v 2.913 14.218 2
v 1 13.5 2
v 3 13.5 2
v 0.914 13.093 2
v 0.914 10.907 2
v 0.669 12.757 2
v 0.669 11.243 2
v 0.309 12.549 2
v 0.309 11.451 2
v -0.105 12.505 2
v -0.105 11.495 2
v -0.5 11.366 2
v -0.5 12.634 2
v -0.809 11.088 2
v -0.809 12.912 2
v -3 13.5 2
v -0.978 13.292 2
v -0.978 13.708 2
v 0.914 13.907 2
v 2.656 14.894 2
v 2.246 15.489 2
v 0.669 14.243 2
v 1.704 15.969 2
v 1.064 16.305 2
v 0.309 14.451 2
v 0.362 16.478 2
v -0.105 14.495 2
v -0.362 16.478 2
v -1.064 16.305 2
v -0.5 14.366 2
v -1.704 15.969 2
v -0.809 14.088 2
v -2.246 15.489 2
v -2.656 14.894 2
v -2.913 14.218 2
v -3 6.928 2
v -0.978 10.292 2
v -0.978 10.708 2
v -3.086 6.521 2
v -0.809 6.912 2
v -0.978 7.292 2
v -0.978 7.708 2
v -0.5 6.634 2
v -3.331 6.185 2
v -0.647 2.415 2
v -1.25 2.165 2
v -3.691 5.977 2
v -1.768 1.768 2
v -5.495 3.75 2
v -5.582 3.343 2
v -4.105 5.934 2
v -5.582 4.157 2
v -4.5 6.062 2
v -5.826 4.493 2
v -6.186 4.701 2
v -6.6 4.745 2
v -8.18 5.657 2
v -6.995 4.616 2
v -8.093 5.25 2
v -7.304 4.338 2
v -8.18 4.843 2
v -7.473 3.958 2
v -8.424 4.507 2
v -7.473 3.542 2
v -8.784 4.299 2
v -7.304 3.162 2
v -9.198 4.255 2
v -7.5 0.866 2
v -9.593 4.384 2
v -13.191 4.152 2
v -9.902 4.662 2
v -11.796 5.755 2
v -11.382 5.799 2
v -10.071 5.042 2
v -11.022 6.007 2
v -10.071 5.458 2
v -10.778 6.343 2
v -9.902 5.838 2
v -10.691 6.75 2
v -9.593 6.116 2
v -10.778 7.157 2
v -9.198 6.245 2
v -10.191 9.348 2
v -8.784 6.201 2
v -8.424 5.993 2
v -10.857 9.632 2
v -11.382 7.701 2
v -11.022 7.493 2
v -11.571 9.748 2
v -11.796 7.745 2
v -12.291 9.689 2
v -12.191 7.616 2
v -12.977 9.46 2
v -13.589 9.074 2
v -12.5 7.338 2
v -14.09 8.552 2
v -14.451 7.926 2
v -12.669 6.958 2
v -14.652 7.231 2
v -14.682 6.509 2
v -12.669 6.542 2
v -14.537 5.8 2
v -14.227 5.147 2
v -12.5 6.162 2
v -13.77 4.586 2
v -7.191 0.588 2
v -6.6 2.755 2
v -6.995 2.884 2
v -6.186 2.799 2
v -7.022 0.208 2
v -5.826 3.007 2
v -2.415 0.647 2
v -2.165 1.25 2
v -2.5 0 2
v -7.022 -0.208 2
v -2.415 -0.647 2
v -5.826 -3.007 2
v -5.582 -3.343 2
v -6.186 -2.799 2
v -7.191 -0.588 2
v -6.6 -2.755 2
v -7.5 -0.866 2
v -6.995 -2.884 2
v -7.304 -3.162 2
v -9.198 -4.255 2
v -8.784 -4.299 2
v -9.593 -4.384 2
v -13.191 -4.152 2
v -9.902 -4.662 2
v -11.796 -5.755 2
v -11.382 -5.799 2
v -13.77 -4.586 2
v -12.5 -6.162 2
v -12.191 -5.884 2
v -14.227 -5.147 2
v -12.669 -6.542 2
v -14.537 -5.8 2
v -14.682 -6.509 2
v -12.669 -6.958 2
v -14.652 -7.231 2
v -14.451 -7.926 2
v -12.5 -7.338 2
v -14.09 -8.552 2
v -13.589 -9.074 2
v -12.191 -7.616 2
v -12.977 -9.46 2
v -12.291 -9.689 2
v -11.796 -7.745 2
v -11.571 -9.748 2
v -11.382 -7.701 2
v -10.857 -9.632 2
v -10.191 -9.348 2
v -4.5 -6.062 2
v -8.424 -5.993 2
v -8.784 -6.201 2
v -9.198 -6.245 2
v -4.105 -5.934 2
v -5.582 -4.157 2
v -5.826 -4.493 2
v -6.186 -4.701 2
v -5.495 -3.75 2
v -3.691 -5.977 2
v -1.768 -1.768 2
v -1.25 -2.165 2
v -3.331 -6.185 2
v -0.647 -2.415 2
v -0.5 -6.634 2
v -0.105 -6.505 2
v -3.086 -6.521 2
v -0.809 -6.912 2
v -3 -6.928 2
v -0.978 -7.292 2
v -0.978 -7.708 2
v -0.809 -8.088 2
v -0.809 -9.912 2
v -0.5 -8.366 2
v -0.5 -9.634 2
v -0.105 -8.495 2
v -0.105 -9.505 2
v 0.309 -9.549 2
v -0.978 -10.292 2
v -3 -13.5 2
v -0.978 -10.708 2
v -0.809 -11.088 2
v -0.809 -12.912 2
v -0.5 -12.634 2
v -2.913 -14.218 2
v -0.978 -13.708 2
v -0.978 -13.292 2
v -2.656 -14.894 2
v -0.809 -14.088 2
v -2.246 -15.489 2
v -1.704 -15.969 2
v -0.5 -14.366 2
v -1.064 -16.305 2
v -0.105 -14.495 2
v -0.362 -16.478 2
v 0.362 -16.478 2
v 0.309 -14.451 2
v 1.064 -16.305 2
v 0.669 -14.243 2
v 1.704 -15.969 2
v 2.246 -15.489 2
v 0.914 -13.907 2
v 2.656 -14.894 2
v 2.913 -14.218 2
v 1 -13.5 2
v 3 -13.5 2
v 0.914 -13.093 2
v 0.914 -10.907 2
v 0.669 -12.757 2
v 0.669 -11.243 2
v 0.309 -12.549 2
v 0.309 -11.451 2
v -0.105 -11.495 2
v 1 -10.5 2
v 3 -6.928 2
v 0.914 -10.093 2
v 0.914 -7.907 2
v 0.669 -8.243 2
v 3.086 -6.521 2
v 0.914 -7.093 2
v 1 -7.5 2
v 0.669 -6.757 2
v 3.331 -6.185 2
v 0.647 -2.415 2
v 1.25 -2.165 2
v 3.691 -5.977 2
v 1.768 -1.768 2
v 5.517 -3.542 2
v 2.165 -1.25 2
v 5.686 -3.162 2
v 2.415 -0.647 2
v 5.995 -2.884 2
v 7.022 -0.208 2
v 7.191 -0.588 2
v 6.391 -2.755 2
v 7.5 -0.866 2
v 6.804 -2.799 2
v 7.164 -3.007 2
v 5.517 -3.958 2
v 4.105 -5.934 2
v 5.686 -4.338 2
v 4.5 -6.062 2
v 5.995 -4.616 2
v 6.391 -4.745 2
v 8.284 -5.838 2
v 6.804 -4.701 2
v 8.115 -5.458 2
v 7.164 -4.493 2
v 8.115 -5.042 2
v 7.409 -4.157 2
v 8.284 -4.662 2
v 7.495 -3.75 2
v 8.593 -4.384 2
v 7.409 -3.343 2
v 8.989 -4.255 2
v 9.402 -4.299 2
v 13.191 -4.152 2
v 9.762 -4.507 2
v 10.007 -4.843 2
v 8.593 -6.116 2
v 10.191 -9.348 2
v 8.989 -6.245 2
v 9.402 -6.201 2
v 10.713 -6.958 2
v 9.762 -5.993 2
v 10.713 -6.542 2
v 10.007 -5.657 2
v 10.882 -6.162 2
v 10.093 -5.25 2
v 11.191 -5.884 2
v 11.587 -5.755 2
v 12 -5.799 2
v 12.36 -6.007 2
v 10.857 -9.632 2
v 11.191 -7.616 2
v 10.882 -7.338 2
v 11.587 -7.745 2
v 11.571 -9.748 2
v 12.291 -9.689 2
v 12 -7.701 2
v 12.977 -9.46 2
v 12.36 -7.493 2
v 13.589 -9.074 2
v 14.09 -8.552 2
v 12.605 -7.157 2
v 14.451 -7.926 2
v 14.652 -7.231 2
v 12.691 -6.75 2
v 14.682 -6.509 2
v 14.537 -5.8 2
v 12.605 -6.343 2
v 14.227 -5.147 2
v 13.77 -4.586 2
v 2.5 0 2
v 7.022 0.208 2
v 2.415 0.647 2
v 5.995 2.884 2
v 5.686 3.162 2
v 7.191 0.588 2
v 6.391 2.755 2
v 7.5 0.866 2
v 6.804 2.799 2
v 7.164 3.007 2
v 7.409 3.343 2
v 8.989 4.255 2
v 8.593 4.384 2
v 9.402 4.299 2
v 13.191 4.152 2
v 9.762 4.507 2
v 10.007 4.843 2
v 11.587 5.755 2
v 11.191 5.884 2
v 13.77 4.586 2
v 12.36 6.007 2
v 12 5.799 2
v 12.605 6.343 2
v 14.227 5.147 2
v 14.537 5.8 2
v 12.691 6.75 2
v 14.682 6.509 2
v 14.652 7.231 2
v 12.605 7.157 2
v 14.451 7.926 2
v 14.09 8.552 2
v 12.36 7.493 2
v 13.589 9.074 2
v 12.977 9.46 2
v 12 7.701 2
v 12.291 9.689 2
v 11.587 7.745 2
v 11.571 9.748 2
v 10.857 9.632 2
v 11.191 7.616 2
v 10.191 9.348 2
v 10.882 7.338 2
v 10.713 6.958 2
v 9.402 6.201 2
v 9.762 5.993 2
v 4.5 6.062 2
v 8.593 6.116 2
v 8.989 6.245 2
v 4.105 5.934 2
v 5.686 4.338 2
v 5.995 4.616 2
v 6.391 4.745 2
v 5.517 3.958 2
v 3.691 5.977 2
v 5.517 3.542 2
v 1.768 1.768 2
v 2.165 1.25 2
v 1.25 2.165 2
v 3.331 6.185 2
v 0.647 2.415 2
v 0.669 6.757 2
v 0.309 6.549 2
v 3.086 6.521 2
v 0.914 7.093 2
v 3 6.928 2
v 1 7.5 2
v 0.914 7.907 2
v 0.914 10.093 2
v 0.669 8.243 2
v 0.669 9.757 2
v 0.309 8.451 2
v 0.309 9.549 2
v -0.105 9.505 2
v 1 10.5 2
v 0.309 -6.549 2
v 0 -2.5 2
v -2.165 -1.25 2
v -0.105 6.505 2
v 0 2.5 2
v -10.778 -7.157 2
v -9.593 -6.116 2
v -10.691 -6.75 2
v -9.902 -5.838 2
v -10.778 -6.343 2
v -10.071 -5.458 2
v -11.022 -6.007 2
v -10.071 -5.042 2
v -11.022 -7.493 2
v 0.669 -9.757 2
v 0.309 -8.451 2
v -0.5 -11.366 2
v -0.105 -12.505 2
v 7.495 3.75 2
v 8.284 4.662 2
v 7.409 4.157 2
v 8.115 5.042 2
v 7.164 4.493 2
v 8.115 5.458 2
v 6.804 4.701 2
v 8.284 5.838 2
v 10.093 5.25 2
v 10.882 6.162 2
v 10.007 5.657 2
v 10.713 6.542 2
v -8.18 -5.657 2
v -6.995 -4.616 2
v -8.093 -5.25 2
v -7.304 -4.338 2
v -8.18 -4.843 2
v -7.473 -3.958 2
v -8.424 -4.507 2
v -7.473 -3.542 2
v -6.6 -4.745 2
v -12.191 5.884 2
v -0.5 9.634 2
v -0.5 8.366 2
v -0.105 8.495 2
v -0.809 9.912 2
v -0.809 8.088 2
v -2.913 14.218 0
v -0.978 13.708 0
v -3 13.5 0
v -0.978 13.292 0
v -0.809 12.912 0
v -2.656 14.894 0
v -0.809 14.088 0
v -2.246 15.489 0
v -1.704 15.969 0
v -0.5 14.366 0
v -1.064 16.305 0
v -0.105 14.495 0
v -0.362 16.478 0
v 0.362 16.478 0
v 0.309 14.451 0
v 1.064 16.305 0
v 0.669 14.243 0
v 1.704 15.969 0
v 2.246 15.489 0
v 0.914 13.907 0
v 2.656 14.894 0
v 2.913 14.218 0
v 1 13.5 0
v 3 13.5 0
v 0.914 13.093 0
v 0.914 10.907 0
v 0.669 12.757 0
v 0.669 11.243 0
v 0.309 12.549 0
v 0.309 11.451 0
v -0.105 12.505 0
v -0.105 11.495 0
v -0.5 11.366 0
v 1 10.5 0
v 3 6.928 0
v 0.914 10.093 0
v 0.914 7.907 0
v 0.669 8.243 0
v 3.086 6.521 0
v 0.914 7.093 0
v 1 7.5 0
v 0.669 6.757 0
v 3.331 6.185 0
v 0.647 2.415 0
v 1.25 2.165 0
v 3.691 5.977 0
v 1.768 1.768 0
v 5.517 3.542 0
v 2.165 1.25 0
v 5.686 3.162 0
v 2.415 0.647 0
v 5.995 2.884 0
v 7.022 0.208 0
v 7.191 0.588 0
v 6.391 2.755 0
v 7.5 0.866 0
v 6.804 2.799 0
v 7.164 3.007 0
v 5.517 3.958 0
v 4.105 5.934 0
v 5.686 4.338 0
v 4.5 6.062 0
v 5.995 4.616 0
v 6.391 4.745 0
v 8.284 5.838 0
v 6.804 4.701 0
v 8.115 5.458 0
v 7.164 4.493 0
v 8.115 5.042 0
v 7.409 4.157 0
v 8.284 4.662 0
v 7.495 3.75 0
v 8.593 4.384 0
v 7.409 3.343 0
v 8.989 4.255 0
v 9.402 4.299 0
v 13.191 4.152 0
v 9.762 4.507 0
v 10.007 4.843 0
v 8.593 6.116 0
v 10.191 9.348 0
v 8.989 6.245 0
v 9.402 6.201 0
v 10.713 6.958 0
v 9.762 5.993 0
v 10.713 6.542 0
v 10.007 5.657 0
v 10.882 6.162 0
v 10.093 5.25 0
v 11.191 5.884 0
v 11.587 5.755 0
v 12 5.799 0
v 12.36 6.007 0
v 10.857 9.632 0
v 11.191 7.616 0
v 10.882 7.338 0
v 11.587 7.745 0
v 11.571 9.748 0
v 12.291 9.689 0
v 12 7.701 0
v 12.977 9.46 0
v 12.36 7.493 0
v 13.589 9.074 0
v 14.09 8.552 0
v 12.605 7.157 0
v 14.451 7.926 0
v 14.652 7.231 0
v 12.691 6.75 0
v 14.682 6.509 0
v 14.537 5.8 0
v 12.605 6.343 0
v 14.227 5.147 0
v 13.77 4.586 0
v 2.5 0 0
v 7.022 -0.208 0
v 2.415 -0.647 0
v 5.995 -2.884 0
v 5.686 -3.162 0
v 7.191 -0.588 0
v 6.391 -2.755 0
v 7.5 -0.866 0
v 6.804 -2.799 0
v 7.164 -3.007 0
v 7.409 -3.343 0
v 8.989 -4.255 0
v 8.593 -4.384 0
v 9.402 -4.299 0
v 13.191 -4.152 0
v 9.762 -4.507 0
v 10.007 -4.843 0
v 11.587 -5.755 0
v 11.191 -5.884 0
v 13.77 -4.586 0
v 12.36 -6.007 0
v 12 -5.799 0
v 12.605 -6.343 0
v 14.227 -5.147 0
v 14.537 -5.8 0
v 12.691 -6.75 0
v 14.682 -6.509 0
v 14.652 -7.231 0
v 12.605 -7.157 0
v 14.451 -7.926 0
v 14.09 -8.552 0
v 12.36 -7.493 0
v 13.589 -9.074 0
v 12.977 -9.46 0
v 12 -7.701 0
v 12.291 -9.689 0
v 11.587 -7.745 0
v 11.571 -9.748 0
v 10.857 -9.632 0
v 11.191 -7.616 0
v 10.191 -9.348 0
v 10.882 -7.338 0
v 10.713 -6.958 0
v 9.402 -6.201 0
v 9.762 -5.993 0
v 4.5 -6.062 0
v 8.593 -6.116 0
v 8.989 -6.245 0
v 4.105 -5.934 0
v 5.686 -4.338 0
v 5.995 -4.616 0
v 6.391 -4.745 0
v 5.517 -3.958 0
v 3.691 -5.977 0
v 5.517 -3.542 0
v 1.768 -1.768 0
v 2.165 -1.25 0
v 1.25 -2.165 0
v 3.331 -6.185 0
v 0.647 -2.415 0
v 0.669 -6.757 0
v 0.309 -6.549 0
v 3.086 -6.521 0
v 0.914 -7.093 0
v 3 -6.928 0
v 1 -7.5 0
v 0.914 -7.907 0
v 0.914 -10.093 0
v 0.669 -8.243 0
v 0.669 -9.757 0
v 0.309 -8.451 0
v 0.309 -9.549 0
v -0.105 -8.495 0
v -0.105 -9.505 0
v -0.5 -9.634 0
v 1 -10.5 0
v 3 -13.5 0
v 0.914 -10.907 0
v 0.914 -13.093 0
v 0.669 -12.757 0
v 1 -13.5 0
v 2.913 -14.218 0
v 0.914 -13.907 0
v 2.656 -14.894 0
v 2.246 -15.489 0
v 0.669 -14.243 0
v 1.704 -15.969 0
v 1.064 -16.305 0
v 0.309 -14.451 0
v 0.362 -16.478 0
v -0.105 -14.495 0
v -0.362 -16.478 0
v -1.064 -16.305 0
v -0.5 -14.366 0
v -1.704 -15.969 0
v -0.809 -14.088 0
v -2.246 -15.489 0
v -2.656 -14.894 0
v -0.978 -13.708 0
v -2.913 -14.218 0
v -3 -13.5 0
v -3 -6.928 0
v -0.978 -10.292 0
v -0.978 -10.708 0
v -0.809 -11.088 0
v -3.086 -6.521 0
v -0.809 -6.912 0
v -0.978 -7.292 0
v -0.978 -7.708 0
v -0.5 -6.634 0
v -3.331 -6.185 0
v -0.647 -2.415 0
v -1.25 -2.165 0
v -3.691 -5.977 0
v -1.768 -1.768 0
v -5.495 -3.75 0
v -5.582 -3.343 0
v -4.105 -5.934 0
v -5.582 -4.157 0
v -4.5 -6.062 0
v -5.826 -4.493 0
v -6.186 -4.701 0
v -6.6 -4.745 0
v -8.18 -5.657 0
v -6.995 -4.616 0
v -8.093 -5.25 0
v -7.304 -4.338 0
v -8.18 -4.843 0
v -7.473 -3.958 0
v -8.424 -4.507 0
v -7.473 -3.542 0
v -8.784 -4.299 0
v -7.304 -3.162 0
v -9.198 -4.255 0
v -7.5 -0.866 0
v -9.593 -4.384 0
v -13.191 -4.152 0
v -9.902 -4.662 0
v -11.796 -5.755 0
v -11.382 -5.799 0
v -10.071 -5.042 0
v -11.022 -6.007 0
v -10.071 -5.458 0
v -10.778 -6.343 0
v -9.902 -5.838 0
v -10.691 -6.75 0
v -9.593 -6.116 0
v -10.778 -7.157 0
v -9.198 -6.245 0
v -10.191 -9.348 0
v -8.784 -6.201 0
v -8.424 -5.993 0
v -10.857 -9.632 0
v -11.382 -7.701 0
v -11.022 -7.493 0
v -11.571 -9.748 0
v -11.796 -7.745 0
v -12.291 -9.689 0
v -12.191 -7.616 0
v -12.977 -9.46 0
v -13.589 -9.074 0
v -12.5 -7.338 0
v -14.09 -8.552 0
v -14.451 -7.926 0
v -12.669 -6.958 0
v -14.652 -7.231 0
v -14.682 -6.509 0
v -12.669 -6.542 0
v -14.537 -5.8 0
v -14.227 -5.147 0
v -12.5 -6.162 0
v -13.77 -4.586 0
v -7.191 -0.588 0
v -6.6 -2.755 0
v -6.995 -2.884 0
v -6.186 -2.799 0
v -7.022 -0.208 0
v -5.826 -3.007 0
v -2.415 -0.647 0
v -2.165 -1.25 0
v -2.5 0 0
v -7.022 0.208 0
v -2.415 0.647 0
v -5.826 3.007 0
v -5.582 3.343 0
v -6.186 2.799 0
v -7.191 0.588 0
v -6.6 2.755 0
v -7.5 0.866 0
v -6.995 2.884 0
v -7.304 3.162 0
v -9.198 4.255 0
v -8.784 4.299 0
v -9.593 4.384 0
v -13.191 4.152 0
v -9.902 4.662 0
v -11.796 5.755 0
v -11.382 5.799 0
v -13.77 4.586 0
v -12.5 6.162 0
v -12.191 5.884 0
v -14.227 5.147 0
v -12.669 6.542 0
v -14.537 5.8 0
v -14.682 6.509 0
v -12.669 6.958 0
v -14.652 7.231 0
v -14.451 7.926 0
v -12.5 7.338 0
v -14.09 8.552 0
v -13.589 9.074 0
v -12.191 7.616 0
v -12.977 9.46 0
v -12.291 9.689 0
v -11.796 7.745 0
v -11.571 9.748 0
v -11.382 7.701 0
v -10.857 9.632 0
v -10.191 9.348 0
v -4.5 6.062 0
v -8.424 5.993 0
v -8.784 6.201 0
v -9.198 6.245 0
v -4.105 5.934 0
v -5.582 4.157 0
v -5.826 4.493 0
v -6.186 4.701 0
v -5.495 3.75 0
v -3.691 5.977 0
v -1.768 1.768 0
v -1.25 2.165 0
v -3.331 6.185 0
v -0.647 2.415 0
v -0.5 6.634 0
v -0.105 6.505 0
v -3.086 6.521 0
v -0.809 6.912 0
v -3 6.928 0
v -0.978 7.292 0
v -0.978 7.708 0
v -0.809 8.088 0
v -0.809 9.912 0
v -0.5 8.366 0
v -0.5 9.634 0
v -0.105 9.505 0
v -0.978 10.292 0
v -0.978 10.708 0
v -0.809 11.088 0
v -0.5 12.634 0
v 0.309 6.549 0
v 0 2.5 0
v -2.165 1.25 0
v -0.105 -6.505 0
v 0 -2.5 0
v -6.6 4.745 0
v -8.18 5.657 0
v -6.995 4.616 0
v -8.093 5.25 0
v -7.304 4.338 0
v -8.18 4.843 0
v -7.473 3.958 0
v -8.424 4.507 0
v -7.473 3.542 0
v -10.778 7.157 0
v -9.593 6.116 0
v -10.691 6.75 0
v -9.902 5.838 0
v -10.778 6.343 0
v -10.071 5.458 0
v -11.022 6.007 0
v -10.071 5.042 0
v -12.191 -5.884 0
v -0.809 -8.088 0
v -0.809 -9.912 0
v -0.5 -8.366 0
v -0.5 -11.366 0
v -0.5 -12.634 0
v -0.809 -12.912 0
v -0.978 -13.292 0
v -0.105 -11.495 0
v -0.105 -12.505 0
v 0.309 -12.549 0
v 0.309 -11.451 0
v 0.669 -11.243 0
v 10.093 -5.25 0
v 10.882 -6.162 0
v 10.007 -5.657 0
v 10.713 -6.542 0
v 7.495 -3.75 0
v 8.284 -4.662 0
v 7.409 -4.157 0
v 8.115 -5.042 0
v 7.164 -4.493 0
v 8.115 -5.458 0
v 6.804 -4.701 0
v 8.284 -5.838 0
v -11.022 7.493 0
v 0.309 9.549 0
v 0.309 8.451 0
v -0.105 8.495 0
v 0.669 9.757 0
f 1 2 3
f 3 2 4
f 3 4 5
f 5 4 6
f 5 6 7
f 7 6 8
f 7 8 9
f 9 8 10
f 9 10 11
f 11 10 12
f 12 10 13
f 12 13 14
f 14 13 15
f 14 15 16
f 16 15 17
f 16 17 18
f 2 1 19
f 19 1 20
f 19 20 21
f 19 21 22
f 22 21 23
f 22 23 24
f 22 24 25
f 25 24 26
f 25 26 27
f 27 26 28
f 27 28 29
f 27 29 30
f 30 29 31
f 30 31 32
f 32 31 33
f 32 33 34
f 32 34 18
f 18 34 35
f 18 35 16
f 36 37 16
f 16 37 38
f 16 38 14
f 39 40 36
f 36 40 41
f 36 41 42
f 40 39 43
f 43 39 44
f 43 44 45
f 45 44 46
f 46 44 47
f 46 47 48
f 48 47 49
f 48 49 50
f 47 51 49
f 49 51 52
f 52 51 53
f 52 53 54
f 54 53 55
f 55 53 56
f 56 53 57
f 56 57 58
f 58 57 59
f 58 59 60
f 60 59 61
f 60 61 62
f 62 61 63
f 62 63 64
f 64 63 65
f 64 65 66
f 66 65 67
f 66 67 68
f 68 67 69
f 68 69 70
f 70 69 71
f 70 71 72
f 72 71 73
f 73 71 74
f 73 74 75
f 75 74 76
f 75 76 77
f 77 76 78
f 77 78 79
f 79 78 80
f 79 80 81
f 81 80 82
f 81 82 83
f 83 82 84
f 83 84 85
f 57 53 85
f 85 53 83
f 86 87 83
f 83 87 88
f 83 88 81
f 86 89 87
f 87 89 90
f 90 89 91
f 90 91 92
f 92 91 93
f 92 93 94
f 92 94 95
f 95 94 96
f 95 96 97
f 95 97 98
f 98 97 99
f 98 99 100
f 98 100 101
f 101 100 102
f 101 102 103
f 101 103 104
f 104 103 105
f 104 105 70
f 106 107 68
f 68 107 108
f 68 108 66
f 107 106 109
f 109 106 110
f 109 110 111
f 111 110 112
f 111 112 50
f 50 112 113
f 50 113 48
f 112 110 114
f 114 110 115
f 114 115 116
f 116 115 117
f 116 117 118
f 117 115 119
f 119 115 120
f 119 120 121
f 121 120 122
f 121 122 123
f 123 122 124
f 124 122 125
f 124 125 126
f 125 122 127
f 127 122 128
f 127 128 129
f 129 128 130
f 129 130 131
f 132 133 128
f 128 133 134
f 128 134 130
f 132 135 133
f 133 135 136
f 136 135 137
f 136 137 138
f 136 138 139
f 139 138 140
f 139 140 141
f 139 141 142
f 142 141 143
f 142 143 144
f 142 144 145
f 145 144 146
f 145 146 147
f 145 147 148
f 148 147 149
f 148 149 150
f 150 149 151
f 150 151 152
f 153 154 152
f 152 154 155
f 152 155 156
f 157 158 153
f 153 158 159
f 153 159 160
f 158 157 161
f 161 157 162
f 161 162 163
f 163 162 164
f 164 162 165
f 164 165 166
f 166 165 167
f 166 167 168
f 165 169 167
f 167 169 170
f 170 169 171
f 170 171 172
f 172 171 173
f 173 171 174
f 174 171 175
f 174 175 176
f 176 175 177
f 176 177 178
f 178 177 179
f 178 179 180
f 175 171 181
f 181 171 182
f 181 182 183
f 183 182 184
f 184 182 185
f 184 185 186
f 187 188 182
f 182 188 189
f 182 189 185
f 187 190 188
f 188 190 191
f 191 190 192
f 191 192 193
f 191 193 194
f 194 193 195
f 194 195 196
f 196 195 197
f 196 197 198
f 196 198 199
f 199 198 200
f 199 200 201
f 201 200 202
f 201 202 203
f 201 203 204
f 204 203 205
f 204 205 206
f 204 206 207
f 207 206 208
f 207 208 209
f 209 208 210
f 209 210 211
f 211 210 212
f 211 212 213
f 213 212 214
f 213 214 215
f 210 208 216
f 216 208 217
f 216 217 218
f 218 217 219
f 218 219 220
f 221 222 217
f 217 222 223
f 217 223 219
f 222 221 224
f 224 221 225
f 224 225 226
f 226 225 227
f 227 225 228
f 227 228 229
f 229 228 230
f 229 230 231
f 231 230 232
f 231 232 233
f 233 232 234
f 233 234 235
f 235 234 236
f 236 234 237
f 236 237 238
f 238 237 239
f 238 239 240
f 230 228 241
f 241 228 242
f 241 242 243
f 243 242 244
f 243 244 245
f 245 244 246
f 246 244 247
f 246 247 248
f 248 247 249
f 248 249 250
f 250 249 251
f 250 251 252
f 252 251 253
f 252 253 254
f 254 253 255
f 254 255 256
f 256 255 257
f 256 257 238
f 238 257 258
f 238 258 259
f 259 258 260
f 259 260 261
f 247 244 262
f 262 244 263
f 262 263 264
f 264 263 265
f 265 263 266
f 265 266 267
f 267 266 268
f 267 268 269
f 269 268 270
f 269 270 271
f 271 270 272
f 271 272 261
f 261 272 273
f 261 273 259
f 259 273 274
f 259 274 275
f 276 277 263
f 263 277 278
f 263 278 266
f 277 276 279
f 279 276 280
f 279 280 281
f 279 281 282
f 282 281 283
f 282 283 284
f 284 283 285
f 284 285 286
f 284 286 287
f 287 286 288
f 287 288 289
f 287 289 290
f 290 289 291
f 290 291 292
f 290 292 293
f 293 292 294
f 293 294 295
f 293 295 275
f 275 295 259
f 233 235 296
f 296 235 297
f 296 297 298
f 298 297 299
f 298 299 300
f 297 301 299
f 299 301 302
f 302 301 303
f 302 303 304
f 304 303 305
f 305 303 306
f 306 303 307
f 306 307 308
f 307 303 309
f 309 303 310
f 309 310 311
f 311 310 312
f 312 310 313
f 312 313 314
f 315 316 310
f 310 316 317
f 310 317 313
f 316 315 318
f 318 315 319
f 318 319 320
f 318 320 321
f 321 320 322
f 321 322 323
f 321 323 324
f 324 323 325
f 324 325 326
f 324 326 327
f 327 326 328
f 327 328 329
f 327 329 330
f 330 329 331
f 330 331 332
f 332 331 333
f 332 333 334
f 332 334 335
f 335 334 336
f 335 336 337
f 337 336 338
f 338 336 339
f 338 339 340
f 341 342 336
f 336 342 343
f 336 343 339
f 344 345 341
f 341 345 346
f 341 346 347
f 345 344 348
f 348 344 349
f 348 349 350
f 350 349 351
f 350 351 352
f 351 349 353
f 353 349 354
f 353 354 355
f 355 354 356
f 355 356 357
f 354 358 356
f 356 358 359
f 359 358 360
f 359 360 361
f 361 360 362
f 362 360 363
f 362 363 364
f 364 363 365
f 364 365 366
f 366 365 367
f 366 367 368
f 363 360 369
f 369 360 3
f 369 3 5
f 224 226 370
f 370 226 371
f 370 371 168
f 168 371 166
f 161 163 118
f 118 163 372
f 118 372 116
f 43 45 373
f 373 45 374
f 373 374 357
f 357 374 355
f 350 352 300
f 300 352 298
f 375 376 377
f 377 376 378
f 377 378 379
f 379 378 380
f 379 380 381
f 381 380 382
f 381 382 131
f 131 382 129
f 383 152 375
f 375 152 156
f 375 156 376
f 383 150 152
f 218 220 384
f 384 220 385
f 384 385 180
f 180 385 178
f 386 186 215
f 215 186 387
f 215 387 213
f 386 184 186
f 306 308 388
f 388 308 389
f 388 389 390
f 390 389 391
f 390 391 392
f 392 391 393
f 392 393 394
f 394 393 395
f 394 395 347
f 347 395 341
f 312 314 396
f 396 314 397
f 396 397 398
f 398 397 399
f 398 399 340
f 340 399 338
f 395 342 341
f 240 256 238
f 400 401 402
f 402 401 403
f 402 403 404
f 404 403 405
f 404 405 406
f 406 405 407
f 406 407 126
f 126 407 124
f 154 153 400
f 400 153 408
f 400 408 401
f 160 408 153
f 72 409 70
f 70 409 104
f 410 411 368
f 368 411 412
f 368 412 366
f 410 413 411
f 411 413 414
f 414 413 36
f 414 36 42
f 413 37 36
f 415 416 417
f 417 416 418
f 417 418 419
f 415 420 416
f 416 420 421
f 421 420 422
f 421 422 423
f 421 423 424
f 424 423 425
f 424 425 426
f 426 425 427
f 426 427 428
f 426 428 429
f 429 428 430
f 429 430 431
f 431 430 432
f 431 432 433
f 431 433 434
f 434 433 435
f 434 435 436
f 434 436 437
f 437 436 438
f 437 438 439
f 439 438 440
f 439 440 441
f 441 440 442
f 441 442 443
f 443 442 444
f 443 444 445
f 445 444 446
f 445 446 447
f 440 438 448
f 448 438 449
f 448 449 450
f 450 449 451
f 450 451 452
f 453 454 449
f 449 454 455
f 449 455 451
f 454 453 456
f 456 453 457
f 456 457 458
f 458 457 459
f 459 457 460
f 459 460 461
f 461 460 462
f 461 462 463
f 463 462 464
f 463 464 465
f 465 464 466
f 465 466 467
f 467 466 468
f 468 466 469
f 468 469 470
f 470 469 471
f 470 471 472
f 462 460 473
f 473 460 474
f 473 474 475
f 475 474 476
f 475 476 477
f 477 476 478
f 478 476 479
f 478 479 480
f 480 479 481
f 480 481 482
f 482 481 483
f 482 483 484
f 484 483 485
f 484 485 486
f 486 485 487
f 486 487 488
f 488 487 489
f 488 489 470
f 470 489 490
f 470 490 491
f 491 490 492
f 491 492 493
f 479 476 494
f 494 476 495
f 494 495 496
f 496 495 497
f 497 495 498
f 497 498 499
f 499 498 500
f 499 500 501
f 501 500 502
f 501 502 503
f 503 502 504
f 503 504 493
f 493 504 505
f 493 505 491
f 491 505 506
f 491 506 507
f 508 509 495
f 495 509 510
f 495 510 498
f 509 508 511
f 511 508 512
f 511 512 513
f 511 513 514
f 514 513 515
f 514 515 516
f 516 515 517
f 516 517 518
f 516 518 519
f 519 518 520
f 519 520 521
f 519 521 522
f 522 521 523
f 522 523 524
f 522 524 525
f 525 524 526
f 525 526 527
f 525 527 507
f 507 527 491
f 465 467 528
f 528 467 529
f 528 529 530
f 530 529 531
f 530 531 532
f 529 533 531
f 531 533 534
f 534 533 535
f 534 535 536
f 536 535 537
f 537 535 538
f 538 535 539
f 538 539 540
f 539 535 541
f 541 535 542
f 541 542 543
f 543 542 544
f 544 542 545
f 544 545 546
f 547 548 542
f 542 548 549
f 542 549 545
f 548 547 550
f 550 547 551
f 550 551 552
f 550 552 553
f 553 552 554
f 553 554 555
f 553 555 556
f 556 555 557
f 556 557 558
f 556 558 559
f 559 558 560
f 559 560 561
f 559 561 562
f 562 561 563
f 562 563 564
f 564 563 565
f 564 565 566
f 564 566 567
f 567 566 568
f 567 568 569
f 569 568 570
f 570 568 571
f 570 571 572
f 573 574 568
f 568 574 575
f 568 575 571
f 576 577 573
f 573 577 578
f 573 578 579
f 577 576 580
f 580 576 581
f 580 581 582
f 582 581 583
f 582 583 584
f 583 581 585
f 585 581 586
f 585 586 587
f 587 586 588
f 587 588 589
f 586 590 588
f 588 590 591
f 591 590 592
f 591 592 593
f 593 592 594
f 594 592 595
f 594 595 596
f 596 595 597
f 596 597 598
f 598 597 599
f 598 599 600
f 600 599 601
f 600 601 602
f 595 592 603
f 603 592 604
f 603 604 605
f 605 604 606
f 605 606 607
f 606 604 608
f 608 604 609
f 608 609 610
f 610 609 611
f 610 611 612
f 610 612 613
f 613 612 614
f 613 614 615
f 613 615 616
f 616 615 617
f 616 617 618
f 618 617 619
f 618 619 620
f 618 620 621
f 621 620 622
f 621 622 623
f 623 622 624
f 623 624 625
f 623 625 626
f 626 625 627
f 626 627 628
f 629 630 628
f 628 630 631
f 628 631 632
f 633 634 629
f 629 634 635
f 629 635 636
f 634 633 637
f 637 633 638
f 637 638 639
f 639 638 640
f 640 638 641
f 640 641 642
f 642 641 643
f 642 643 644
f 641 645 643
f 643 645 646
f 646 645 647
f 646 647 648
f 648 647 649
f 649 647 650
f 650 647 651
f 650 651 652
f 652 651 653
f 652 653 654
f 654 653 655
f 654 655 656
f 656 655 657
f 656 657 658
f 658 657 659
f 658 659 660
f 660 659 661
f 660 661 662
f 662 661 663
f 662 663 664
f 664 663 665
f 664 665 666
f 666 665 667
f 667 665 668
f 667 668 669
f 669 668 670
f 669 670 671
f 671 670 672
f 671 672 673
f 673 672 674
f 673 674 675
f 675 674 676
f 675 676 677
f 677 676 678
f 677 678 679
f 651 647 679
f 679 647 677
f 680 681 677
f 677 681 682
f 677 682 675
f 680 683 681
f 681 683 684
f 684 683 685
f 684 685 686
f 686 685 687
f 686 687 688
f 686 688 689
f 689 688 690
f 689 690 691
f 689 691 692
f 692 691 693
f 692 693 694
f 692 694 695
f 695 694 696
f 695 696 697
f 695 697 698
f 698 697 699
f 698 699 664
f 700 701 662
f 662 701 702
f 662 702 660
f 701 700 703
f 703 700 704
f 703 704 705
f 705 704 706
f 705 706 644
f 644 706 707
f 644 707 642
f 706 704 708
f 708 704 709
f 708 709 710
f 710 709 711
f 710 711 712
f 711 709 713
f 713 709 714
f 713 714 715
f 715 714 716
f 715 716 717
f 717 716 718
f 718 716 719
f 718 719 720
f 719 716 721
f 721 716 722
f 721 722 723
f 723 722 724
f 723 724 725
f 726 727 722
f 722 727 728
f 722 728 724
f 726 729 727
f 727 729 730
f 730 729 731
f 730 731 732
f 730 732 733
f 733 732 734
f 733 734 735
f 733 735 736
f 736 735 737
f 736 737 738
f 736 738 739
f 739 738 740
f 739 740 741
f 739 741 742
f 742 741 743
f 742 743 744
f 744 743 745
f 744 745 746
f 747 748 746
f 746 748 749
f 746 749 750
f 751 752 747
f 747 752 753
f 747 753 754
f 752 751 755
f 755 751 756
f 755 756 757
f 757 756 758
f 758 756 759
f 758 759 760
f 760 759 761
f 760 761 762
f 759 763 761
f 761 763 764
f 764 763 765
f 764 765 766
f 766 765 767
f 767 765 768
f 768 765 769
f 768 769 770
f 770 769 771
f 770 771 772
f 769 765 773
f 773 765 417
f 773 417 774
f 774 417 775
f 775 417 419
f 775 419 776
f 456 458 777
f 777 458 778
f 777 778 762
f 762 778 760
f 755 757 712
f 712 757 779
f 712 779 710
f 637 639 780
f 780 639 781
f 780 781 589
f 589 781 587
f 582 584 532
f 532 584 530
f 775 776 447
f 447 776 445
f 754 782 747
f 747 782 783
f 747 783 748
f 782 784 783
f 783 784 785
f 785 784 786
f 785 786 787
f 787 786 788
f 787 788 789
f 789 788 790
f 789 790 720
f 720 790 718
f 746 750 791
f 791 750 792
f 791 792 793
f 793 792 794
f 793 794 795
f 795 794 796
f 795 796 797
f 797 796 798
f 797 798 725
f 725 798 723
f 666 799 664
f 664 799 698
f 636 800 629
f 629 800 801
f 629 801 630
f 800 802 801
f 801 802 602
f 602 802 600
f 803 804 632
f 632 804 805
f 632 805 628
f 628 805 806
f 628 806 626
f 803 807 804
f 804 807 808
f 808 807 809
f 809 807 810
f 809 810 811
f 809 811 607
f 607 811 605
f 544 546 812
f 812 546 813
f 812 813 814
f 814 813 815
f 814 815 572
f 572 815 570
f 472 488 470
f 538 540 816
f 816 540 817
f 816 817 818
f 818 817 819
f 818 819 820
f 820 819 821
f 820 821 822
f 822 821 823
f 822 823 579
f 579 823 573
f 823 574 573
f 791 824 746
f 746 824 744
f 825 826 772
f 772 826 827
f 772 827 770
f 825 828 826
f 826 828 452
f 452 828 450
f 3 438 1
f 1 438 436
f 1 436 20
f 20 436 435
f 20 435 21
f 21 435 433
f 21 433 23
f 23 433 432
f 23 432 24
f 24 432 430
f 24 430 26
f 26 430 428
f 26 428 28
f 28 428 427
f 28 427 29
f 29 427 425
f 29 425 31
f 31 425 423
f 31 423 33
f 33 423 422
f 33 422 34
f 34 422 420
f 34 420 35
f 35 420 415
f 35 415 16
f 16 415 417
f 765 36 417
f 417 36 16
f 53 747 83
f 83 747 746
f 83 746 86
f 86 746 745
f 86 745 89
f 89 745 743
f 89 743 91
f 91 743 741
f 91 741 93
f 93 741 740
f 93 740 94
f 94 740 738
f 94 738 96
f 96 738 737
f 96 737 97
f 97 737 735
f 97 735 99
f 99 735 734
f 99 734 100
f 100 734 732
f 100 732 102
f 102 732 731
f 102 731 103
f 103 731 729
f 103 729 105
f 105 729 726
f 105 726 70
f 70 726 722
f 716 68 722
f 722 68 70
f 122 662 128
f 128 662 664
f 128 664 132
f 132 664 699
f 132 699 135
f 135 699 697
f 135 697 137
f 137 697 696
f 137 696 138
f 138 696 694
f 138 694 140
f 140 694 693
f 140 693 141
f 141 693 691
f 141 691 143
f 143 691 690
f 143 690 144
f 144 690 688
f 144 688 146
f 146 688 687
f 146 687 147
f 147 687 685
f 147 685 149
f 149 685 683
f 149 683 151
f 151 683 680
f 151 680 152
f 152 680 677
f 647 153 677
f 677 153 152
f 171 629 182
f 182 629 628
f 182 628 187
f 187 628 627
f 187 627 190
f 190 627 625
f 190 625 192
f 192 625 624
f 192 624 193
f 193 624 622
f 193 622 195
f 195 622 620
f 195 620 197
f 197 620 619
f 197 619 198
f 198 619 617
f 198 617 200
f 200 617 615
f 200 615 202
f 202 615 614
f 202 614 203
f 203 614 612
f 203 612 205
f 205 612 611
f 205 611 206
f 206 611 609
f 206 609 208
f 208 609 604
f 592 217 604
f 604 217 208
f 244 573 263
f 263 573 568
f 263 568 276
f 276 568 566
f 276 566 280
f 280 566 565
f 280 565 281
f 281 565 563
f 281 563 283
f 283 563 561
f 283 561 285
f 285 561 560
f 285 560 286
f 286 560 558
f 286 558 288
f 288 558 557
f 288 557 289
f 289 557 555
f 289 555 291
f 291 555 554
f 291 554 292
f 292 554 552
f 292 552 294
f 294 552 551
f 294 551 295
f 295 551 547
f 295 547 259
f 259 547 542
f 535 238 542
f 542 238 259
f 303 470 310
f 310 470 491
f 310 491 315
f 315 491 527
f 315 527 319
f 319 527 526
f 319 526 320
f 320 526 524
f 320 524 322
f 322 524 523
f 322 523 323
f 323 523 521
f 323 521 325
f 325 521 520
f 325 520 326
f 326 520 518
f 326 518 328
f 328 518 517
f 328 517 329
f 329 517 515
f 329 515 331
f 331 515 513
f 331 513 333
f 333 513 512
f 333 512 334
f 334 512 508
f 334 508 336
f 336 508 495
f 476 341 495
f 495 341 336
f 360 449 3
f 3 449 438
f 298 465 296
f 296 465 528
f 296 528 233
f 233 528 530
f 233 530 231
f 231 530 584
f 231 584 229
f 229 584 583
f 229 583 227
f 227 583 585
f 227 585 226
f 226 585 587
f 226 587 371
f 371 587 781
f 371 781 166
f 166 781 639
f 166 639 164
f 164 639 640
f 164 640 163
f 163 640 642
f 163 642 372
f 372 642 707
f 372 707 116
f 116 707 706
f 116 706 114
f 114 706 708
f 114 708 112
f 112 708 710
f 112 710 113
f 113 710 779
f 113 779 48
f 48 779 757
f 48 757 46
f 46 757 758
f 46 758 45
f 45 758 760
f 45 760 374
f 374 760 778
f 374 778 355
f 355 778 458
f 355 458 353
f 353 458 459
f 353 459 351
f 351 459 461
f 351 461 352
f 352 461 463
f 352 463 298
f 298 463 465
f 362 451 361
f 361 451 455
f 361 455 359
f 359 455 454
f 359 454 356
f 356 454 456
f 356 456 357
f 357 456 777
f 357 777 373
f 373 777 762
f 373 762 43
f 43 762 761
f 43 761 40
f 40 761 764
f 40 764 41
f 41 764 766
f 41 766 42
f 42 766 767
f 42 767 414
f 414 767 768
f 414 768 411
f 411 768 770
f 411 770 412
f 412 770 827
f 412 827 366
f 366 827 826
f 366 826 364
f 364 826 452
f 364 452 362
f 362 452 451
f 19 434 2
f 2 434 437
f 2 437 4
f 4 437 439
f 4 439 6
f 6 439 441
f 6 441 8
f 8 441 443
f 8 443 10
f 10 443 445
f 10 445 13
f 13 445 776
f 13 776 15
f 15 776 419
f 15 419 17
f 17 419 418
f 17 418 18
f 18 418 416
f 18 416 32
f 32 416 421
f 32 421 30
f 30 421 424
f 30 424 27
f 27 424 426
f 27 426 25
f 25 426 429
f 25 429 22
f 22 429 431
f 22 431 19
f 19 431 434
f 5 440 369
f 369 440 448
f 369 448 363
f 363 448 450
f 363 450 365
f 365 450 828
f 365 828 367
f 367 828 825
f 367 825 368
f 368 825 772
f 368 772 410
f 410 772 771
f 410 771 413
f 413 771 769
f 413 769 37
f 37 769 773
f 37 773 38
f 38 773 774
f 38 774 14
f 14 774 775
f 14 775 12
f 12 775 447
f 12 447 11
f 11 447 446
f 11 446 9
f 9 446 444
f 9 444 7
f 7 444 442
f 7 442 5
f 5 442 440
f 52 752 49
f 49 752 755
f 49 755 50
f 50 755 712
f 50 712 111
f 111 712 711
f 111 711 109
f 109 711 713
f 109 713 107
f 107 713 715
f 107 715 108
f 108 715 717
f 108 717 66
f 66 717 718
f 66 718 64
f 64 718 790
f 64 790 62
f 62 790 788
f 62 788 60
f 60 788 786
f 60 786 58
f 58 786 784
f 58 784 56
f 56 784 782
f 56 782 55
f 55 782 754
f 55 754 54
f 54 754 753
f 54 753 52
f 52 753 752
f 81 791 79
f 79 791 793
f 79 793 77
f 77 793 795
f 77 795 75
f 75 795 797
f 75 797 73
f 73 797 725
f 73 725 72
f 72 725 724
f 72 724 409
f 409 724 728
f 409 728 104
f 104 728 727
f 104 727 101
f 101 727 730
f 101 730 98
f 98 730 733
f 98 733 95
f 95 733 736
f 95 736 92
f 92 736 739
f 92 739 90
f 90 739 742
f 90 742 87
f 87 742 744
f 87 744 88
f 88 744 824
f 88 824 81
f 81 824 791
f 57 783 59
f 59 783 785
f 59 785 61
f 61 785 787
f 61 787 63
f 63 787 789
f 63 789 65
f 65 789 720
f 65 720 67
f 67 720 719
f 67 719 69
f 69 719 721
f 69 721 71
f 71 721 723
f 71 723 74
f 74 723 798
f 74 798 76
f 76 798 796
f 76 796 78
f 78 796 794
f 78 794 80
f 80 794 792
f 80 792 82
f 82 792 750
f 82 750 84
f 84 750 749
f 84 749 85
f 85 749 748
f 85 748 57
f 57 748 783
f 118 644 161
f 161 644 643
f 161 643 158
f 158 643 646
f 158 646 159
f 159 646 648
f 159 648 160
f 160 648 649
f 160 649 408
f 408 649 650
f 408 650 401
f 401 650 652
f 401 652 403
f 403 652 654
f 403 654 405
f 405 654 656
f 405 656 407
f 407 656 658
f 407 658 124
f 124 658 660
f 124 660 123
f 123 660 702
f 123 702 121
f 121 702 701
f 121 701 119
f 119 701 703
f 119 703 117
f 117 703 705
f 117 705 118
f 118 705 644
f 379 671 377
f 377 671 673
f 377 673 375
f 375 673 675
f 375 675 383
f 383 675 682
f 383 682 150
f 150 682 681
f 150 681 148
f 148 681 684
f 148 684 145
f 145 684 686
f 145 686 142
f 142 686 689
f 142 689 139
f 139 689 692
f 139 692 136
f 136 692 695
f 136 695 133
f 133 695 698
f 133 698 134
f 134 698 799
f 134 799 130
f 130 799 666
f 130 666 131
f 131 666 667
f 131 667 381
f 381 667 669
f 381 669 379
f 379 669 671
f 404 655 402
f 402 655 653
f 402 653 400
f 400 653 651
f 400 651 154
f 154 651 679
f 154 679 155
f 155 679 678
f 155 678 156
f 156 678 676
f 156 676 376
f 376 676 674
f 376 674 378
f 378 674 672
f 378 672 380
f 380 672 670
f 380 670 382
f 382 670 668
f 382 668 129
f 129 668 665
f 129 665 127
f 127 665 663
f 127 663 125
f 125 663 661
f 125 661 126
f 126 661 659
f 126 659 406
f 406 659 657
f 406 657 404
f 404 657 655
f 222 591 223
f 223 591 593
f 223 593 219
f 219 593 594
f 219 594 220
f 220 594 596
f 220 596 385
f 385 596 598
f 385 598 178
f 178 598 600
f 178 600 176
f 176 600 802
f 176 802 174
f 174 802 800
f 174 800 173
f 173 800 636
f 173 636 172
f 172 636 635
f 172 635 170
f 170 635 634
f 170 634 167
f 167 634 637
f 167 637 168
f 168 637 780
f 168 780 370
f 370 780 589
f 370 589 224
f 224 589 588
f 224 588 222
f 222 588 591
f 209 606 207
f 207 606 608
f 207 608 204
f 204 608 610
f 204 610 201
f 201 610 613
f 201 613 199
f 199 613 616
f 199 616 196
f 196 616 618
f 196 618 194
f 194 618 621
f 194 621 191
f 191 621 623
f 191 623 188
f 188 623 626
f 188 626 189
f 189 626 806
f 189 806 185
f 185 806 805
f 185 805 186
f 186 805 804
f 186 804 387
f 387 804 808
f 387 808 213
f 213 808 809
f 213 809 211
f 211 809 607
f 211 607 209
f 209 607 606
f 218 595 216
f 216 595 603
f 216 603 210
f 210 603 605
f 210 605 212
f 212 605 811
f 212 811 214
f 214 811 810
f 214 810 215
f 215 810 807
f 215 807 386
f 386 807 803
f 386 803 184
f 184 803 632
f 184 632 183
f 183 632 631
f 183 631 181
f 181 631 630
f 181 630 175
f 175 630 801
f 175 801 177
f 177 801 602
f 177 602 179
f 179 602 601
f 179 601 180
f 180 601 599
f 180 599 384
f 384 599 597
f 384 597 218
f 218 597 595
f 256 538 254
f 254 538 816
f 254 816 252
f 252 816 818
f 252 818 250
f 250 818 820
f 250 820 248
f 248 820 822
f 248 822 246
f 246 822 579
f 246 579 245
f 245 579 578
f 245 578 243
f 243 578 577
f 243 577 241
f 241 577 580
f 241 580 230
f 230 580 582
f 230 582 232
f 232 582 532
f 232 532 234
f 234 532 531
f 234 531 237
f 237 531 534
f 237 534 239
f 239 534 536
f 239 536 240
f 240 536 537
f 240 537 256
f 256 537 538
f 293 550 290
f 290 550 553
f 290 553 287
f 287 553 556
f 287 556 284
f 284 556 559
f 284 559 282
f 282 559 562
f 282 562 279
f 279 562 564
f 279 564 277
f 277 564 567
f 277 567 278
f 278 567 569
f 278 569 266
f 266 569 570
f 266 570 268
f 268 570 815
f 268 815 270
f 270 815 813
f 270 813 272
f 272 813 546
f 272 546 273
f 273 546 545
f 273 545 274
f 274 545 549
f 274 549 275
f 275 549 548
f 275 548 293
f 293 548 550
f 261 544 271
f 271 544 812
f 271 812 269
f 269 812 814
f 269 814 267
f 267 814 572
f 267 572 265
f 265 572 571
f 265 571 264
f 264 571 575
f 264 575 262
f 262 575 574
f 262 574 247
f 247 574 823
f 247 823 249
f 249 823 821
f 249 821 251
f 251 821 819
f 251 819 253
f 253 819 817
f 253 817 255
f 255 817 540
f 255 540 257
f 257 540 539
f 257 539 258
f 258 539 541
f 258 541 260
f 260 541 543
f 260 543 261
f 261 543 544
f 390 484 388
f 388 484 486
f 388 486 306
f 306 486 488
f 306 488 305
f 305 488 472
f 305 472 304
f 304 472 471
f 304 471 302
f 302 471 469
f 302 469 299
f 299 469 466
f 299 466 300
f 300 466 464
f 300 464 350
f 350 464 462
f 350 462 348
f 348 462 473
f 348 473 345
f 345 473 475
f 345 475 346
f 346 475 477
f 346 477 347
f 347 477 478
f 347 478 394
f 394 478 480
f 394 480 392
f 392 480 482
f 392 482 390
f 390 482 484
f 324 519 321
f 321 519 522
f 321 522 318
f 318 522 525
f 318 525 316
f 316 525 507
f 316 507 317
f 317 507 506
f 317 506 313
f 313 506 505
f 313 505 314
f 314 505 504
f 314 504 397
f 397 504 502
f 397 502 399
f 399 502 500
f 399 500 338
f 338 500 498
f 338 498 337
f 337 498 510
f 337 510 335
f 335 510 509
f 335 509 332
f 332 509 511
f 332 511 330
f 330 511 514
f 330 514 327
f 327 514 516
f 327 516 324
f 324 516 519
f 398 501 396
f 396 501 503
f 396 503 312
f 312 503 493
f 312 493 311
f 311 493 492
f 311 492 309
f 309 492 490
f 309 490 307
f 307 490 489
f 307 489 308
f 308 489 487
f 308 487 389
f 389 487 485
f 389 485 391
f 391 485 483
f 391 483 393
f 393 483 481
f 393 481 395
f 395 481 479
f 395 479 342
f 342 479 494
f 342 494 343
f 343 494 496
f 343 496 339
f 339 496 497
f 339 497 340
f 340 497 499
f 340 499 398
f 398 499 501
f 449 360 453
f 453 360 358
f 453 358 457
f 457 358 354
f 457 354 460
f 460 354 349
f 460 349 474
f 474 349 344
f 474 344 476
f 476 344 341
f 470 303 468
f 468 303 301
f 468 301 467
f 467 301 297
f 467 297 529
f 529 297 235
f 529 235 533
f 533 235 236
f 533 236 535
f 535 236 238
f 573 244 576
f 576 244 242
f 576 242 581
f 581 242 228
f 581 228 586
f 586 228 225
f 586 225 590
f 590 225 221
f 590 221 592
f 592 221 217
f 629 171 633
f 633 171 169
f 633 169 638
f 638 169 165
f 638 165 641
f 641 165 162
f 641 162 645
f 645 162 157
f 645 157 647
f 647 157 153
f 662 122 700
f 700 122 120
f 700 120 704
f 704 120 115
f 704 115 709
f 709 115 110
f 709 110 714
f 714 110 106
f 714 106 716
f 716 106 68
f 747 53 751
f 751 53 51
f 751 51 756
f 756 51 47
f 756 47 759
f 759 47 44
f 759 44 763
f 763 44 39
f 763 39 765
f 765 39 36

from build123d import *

# Parameters (mm, degrees)
SKETCH1_R      = 2.5
SKETCH1_R_2    = 1
EXTRUDE1_DEPTH = 2
FILLET1_R      = 1


with BuildPart() as part:
    # Sketch1 → Extrude1 (new body)
    with BuildSketch(Plane.XY):
        with BuildLine():
            Line((3, 13.5), (3, 5.196152423))
            Line((3, 5.196152423), (10.191342951, 9.348076211))
            ThreePointArc((10.191342951, 9.348076211), (14.289419162, 8.25), (13.191342951, 4.151923789))
            Line((13.191342951, 4.151923789), (6, 0))
            Line((6, 0), (13.191342951, -4.151923789))
            ThreePointArc((13.191342951, -4.151923789), (14.289419162, -8.25), (10.191342951, -9.348076211))
            Line((10.191342951, -9.348076211), (3, -5.196152423))
            Line((3, -5.196152423), (3, -13.5))
            ThreePointArc((3, -13.5), (0, -16.5), (-3, -13.5))
            Line((-3, -13.5), (-3, -5.196152423))
            Line((-3, -5.196152423), (-10.191342951, -9.348076211))
            ThreePointArc((-10.191342951, -9.348076211), (-14.289419162, -8.25), (-13.191342951, -4.151923789))
            Line((-13.191342951, -4.151923789), (-6, 0))
            Line((-6, 0), (-13.191342951, 4.151923789))
            ThreePointArc((-13.191342951, 4.151923789), (-14.289419162, 8.25), (-10.191342951, 9.348076211))
            Line((-10.191342951, 9.348076211), (-3, 5.196152423))
            Line((-3, 5.196152423), (-3, 13.5))
            ThreePointArc((-3, 13.5), (0, 16.5), (3, 13.5))
        make_face()
        Circle(SKETCH1_R, mode=Mode.SUBTRACT)
        with Locations((0, 7.5)):
            Circle(SKETCH1_R_2, mode=Mode.SUBTRACT)
        with Locations((0, 10.5)):
            Circle(SKETCH1_R_2, mode=Mode.SUBTRACT)
        with Locations((0, 13.5)):
            Circle(SKETCH1_R_2, mode=Mode.SUBTRACT)
        with Locations((-6.495190528, 3.75)):
            Circle(SKETCH1_R_2, mode=Mode.SUBTRACT)
        with Locations((-9.09326674, 5.25)):
            Circle(SKETCH1_R_2, mode=Mode.SUBTRACT)
        with Locations((-11.691342951, 6.75)):
            Circle(SKETCH1_R_2, mode=Mode.SUBTRACT)
        with Locations((-6.495190528, -3.75)):
            Circle(SKETCH1_R_2, mode=Mode.SUBTRACT)
        with Locations((-9.09326674, -5.25)):
            Circle(SKETCH1_R_2, mode=Mode.SUBTRACT)
        with Locations((-11.691342951, -6.75)):
            Circle(SKETCH1_R_2, mode=Mode.SUBTRACT)
        with Locations((0, -7.5)):
            Circle(SKETCH1_R_2, mode=Mode.SUBTRACT)
        with Locations((0, -10.5)):
            Circle(SKETCH1_R_2, mode=Mode.SUBTRACT)
        with Locations((0, -13.5)):
            Circle(SKETCH1_R_2, mode=Mode.SUBTRACT)
        with Locations((6.495190528, -3.75)):
            Circle(SKETCH1_R_2, mode=Mode.SUBTRACT)
        with Locations((9.09326674, -5.25)):
            Circle(SKETCH1_R_2, mode=Mode.SUBTRACT)
        with Locations((11.691342951, -6.75)):
            Circle(SKETCH1_R_2, mode=Mode.SUBTRACT)
        with Locations((6.495190528, 3.75)):
            Circle(SKETCH1_R_2, mode=Mode.SUBTRACT)
        with Locations((9.09326674, 5.25)):
            Circle(SKETCH1_R_2, mode=Mode.SUBTRACT)
        with Locations((11.691342951, 6.75)):
            Circle(SKETCH1_R_2, mode=Mode.SUBTRACT)
    extrude(amount=EXTRUDE1_DEPTH)

    # Fillet1
    fillet1_edges = [part.edges().sort_by_distance(p)[0] for p in [
        (3, 5.196152423, 1),
        (6, 0, 1),
        (3, -5.196152423, 1),
        (-3, -5.196152423, 1),
        (-6, 0, 1),
        (-3, 5.196152423, 1),
    ]]
    fillet(fillet1_edges, radius=FILLET1_R)


solid = part.part
